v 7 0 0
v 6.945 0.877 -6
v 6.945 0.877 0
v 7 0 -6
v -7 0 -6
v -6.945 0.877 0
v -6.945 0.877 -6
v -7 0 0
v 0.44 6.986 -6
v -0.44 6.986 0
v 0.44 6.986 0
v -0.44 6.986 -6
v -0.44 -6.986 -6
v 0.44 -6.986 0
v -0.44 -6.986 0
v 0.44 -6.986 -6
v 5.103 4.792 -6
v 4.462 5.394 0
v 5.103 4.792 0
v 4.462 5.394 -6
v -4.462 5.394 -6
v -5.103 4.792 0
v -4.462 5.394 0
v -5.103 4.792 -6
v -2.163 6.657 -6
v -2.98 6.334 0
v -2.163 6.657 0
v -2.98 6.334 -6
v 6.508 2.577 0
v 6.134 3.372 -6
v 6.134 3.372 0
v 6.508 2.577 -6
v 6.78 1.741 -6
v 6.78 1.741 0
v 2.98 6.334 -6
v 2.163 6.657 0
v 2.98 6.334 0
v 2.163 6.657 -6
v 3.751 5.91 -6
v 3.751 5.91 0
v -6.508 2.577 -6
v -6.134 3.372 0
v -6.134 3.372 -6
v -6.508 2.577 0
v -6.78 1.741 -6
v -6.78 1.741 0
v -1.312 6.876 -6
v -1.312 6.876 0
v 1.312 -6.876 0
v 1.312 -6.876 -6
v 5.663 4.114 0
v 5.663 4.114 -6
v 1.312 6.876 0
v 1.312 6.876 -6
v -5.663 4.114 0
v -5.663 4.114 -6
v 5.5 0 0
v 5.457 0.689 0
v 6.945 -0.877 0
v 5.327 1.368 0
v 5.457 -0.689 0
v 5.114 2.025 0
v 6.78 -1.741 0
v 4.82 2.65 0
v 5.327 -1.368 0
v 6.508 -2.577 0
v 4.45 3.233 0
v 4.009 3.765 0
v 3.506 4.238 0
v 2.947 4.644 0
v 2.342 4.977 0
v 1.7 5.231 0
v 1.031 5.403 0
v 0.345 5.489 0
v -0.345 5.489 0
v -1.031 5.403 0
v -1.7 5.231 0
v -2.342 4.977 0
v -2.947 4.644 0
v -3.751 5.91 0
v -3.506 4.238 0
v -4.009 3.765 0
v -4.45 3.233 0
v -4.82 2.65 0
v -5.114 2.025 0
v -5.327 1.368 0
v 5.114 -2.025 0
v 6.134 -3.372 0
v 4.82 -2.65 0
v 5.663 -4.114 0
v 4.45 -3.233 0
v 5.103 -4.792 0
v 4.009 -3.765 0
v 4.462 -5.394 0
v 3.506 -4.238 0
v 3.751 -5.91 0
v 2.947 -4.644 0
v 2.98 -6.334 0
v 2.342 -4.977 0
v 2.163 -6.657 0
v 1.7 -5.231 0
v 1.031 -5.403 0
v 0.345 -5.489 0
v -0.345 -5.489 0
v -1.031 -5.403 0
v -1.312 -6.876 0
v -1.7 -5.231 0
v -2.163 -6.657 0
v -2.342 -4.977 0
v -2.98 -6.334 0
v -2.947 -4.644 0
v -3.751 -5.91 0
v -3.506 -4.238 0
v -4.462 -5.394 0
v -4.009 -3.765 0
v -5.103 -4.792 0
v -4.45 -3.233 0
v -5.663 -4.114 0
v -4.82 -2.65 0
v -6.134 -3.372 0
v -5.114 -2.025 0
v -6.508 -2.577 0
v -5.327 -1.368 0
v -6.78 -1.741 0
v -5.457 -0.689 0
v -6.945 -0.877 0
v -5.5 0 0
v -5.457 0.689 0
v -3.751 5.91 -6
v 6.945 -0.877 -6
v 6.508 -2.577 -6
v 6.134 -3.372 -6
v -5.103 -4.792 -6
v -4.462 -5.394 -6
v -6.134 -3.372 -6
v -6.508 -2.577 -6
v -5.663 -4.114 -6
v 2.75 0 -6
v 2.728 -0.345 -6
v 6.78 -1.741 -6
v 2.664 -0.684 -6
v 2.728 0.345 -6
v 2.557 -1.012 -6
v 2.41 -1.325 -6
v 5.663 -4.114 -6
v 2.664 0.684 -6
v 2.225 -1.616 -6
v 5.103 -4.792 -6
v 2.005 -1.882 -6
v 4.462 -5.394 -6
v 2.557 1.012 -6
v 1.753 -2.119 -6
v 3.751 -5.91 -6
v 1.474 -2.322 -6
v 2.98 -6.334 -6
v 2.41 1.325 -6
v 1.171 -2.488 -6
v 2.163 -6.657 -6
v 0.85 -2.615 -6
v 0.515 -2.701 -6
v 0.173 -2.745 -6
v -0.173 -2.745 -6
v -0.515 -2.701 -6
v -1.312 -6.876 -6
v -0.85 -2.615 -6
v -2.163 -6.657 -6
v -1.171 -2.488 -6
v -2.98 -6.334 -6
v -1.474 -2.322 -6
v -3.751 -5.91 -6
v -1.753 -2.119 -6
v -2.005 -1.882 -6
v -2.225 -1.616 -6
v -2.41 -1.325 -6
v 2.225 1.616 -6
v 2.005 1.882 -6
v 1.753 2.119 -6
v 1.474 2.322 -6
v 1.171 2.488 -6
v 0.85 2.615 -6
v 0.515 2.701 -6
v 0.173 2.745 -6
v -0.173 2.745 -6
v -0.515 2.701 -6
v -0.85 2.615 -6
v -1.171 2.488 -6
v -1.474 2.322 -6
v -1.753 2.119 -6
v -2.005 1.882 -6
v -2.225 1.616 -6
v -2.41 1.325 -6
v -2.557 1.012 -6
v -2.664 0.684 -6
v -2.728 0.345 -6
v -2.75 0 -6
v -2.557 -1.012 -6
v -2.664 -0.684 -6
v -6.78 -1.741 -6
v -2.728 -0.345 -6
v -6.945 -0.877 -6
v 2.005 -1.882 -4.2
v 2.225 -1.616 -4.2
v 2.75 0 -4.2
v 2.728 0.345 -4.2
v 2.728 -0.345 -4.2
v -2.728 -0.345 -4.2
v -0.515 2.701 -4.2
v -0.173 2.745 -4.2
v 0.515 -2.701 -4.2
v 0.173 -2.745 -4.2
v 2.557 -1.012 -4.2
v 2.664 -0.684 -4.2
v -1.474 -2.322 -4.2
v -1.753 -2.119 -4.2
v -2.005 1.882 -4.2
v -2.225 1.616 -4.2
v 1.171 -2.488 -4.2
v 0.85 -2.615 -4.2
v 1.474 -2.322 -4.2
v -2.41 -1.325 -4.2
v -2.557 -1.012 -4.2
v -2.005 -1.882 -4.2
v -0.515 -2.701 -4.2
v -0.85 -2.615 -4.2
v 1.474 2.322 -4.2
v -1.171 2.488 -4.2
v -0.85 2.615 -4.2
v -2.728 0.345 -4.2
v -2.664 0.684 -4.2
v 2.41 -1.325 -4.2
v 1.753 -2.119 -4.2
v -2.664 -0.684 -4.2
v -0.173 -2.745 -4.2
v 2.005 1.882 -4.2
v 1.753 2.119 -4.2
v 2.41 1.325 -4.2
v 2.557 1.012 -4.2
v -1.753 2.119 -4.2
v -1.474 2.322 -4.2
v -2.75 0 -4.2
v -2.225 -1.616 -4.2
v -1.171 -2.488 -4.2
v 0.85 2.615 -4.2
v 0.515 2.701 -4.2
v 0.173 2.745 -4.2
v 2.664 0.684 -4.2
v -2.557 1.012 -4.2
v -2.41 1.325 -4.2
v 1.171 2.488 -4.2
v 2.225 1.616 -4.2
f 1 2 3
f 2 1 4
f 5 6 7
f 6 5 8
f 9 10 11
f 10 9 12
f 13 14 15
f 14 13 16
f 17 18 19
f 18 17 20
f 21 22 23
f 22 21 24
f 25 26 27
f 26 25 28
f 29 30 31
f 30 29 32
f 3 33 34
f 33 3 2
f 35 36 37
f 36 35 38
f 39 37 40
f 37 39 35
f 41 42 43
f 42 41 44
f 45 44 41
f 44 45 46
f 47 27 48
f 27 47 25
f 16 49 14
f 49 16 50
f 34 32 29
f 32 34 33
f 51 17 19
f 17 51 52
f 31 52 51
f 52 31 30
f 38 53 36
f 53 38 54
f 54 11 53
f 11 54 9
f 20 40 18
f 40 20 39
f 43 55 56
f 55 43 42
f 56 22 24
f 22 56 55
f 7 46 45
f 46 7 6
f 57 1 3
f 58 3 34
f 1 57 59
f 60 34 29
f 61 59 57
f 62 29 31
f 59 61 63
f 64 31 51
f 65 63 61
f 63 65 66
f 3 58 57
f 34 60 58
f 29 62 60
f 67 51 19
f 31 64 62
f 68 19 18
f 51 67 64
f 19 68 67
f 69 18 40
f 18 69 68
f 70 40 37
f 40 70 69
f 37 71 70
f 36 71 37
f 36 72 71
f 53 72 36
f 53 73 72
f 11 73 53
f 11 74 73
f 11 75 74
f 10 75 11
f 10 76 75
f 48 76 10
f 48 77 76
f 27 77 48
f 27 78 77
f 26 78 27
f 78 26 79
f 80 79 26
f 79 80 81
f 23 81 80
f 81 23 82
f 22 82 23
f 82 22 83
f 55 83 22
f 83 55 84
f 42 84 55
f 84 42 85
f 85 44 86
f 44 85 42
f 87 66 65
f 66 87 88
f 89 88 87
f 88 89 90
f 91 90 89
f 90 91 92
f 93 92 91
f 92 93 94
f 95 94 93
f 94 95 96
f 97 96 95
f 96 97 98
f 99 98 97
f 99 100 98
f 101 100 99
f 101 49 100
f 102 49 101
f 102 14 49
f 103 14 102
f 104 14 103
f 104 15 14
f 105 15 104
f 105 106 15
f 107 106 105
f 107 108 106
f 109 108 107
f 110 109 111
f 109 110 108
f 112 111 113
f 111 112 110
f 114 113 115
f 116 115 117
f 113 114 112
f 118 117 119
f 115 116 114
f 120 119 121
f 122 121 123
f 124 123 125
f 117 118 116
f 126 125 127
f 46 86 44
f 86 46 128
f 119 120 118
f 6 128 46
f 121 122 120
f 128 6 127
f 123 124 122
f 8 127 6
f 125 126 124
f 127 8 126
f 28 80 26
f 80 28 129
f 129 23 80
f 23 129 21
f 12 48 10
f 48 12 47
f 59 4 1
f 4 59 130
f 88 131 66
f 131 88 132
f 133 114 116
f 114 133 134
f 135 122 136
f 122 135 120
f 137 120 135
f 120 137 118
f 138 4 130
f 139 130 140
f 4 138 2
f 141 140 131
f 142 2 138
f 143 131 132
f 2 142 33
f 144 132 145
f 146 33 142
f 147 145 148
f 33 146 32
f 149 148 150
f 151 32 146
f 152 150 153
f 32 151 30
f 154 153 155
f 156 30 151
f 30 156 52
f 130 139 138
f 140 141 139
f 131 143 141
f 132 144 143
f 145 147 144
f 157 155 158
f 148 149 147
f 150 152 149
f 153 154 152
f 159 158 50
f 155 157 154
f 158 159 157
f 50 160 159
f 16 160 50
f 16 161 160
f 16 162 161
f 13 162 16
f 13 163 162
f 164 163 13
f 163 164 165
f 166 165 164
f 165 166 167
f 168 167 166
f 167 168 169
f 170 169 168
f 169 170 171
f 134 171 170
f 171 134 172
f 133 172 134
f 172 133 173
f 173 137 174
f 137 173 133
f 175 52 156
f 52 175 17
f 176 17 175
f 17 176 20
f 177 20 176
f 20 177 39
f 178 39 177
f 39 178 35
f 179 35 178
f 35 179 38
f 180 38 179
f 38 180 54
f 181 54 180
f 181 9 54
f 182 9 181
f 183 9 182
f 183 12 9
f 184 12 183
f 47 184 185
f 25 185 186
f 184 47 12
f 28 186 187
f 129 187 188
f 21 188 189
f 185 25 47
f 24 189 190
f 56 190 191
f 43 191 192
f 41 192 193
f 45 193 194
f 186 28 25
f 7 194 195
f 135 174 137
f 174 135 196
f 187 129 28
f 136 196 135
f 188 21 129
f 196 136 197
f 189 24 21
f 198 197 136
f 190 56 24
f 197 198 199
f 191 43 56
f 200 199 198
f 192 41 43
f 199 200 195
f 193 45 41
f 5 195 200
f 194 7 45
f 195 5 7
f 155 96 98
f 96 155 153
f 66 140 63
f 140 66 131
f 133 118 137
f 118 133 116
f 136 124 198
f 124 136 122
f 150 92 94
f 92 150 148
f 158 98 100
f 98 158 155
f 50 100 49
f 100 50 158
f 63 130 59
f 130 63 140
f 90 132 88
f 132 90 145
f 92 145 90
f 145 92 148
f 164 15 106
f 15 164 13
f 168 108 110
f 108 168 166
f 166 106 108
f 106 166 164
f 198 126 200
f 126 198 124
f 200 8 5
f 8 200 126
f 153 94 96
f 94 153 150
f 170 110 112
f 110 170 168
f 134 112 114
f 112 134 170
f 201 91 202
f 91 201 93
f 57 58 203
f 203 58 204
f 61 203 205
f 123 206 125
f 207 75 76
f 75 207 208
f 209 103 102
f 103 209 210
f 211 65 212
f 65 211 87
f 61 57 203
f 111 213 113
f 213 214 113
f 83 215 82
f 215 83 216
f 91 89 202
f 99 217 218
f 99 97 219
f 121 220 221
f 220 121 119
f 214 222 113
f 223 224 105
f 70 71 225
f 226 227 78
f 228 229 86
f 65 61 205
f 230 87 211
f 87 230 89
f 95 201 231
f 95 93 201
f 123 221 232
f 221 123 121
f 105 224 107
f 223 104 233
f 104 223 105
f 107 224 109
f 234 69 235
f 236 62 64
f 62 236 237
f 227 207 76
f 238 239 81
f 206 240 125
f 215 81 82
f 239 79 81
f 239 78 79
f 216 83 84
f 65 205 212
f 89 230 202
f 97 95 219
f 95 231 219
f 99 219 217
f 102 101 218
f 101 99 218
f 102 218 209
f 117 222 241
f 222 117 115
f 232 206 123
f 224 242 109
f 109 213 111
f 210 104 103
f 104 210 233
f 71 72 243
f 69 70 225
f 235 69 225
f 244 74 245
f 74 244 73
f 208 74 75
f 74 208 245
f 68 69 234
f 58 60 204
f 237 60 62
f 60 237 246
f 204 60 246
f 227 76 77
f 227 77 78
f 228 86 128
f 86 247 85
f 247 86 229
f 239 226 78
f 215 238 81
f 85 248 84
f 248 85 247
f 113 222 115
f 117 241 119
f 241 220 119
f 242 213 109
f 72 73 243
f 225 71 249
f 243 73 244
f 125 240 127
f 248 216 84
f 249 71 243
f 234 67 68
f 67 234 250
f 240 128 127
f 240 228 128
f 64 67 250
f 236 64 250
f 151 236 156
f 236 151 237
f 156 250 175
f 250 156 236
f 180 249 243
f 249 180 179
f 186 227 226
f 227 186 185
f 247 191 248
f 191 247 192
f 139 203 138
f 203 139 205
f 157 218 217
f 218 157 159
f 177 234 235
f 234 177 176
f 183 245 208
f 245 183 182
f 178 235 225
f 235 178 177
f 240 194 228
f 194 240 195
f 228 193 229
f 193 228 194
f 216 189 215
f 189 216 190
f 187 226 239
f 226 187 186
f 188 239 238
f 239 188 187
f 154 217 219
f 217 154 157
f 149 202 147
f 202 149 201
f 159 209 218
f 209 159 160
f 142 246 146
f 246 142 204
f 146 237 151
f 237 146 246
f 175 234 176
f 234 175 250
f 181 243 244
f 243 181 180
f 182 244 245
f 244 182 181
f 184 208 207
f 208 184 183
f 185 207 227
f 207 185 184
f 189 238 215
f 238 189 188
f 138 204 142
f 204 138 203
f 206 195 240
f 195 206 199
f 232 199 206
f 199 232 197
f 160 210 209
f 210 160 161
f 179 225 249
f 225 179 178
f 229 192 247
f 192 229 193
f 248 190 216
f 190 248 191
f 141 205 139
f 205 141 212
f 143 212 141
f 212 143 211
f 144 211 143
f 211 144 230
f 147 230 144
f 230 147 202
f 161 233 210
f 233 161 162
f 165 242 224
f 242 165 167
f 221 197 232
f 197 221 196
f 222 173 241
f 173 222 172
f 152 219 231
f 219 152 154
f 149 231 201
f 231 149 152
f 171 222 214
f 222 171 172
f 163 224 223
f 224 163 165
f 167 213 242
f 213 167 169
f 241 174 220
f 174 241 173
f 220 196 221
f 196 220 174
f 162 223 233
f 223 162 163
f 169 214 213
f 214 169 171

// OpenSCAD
$fn = 50;


difference() {
	union() {
		translate(v = [0, 0, -6.0000000000]) {
			cylinder(h = 6, r = 7.0000000000);
		}
		translate(v = [0, 0, -6.0000000000]) {
			cylinder(h = 6, r = 2.8750000000);
		}
	}
	union() {
		translate(v = [0, 0, 0]) {
			rotate(a = [0, 0, 0]) {
				difference() {
					union() {
						translate(v = [0, 0, -6.0000000000]) {
							cylinder(h = 6, r = 2.2500000000);
						}
						translate(v = [0, 0, -4.2000000000]) {
							cylinder(h = 4.2000000000, r1 = 2.7500000000, r2 = 5.5000000000);
						}
						translate(v = [0, 0, -6.0000000000]) {
							cylinder(h = 6, r = 2.7500000000);
						}
						translate(v = [0, 0, -6.0000000000]) {
							cylinder(h = 6, r = 2.2500000000);
						}
					}
					union();
				}
			}
		}
	}
}
